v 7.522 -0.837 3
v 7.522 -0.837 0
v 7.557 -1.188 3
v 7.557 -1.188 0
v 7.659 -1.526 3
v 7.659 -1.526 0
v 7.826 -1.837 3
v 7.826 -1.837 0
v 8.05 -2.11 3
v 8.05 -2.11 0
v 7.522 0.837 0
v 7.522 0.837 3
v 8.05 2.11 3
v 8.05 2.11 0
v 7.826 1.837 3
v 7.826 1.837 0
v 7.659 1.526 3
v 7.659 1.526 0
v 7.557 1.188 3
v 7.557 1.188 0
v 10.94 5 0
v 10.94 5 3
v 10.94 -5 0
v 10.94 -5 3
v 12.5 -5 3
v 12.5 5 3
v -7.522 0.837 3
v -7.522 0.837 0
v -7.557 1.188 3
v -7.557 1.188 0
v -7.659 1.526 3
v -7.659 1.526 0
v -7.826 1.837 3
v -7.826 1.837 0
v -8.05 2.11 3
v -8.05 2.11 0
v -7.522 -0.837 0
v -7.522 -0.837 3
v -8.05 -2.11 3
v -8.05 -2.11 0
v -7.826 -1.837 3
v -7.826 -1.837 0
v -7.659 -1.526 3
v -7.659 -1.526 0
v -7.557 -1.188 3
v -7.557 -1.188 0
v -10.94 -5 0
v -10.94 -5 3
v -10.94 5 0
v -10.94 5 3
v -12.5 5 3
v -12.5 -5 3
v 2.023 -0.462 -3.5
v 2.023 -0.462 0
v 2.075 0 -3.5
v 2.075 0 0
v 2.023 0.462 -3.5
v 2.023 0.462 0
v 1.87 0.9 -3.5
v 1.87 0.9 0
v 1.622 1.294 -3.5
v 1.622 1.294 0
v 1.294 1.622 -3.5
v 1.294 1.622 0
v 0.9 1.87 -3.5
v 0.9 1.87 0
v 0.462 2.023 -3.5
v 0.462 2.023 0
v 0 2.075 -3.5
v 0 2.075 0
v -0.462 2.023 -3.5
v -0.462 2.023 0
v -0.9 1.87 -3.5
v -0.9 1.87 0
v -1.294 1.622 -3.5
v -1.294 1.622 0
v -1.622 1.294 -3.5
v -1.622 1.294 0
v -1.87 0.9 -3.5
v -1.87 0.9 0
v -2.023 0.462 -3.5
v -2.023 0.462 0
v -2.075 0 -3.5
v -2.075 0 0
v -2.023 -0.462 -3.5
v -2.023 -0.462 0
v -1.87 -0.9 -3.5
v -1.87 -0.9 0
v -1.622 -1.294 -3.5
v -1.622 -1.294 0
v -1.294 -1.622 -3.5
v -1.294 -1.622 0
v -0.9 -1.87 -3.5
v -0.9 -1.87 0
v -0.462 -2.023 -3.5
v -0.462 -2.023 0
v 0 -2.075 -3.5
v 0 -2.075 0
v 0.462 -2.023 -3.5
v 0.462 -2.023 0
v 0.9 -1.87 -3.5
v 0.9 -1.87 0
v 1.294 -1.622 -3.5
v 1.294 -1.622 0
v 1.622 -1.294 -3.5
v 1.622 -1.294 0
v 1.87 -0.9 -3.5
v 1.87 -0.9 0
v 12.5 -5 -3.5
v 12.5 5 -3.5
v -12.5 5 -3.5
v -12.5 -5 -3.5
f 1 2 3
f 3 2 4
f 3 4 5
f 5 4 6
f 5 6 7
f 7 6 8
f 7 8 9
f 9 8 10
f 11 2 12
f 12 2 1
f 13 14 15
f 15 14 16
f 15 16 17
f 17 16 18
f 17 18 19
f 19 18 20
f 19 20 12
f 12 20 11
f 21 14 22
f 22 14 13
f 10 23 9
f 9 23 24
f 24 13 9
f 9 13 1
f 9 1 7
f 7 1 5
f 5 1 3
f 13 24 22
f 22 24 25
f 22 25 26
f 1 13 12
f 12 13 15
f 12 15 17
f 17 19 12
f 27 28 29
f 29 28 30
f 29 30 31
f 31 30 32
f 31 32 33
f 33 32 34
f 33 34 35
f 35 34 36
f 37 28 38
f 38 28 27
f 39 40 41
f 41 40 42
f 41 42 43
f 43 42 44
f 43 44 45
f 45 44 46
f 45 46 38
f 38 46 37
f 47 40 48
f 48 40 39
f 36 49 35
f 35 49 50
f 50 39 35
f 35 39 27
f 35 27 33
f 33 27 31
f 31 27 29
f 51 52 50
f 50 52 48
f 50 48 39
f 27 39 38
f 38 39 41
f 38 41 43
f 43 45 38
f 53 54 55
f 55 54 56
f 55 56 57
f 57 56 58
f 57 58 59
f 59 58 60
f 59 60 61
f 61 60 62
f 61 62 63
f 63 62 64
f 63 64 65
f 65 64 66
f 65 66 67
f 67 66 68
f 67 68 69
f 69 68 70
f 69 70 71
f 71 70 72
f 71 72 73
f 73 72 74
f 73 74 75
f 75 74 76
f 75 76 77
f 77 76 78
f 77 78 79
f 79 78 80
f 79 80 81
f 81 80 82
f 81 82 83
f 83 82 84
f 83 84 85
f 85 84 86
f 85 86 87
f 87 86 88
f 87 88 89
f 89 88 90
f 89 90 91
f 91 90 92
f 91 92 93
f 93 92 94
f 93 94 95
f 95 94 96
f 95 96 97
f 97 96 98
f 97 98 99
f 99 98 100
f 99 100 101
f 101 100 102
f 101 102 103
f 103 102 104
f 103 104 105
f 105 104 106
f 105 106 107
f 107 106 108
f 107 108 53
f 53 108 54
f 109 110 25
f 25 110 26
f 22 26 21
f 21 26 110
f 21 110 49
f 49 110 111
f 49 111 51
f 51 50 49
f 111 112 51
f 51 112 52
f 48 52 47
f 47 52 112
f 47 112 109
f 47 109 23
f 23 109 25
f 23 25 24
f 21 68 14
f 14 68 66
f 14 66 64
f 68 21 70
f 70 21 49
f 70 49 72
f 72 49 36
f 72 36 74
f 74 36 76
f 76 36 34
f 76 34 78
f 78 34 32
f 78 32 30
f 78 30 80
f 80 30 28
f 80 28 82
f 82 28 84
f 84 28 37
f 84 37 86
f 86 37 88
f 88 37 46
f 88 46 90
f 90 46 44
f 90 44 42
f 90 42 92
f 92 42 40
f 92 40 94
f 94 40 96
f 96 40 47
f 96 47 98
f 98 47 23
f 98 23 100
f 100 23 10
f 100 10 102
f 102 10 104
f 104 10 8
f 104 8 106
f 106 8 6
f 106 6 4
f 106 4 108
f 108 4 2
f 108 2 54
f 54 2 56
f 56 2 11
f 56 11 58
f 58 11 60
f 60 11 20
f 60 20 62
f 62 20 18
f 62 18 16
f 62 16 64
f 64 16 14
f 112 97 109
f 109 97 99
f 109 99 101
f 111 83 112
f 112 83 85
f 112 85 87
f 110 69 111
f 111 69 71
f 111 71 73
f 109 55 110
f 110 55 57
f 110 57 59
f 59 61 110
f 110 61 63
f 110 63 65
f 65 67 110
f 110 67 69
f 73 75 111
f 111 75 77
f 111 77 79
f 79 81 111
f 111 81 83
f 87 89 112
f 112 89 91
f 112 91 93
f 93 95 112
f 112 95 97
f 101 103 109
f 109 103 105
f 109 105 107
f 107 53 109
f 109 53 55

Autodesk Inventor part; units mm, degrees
ref_plane "YZ Plane" through (0, 0, 0) normal (1, 0, 0) x (0, 1, 0)
ref_plane "XZ Plane" through (0, 0, 0) normal (0, 1, 0) x (-1, 0, 0)
ref_plane "XY Plane" through (0, 0, 0) normal (0, 0, 1) x (1, 0, 0)
sketch "Sketch1" plane through (0, 0, 0) normal (0, 0, 1) x (1, 0, 0)
  circle A0 centre (0, 0) radius 2.075
  line L0 (-12.5, 5) -> (12.5, 5)
  line L1 (12.5, 5) -> (12.5, -5)
  line L2 (12.5, -5) -> (-12.5, -5)
  line L3 (-12.5, -5) -> (-12.5, 5)
  line L4 (-12.5, 5) -> (12.5, -5) construction
  line L5 (12.5, 5) -> (-12.5, -5) construction
  dimension "d0" = 4.15
  dimension "d1" = 25
  dimension "d2" = 10
extrude "Extrusion1" add sketch "Sketch1" against normal blind 3.5
sketch "Sketch3" plane through (0, 0, 0) normal (0, 0, 1) x (1, 0, 0)
  line L0 (-22.7487, 17.0919) -> (-7.9081, 2.2513)
  arc A0 (-7.3223, 0.837) -> (-7.9081, 2.2513) centre (-9.3223, 0.837) ccw
  line L1 (-7.3223, 0.837) -> (-7.3223, -0.837)
  arc A1 (-7.9081, -2.2513) -> (-7.3223, -0.837) centre (-9.3223, -0.837) ccw
  line L2 (-7.9081, -2.2513) -> (-22.7487, -17.0919)
  line L3 (22.7487, -17.0919) -> (7.9081, -2.2513)
  arc A2 (7.3223, -0.837) -> (7.9081, -2.2513) centre (9.3223, -0.837) ccw
  line L4 (7.3223, -0.837) -> (7.3223, 0.837)
  arc A3 (7.9081, 2.2513) -> (7.3223, 0.837) centre (9.3223, 0.837) ccw
  line L5 (7.9081, 2.2513) -> (22.7487, 17.0919)
  circle A4 centre (0, 0) radius 1.65
  line L6 (-22.7487, 17.0919) -> (-22.7487, -17.0919)
  line L7 (22.7487, 17.0919) -> (22.7487, -17.0919)
  line L8 (-8.0495, 2.1098) -> (-22.5487, 16.609)
  line L9 (-22.5487, 16.609) -> (-22.5487, -16.609)
  line L10 (-22.5487, -16.609) -> (-8.0495, -2.1098)
  arc A5 (-7.5223, 0.837) -> (-8.0495, 2.1098) centre (-9.3223, 0.837) ccw
  line L11 (-7.5223, 0.837) -> (-7.5223, -0.837)
  arc A6 (-8.0495, -2.1098) -> (-7.5223, -0.837) centre (-9.3223, -0.837) ccw
  line L12 (7.5223, -0.837) -> (7.5223, 0.837)
  arc A7 (8.0495, 2.1098) -> (7.5223, 0.837) centre (9.3223, 0.837) ccw
  line L13 (8.0495, 2.1098) -> (22.8902, 16.9505)
  line L14 (22.5487, 17.0919) -> (22.5487, -16.609)
  line L15 (22.5487, -16.609) -> (8.0495, -2.1098)
  arc A8 (7.5223, -0.837) -> (8.0495, -2.1098) centre (9.3223, -0.837) ccw
  line L16 (-12.5, -5) -> (12.5, -5) projected
  line L17 (12.5, -5) -> (12.5, 5) projected
  line L18 (12.5, 5) -> (-12.5, 5) projected
  line L19 (-12.5, 5) -> (-12.5, -5) projected
  circle A9 centre (0, 0) radius 2.075 projected
  point P0 (8.0495, -2.1098)
  point P1 (10.9397, -5)
  point P2 (10.9397, 5)
  point P3 (-10.9397, 5)
  point P4 (-10.9397, -5)
  point P5 (-8.0495, -2.1098)
  dimension "d1" = 25
  dimension "d5" = 0.2
  dimension "d6" = 0.2
  dimension "d7" = 0.2
  dimension "d8" = 0.2
  dimension "d9" = 0.2
  dimension "d10" = 0.2
  dimension "d11" = 0.2
  dimension "d12" = 0.2
  dimension "d13" = 0.2
extrude "Extrusion2" add sketch "Sketch3" along normal blind 3 contours L8 A5 L11 A6 L10 L16 L19 L18 | L18 L17 L16 L15 A8 L12 A7 L13
equation "\"d6\" = d5"
equation "\"d7\" = d5"
equation "\"d8\" = d5"
equation "\"d9\" = d5"
equation "\"d10\" = d5"
equation "\"d11\" = d5"
equation "\"d12\" = d5"
equation "\"d13\" = d5"
properties part number "backing_nut"
